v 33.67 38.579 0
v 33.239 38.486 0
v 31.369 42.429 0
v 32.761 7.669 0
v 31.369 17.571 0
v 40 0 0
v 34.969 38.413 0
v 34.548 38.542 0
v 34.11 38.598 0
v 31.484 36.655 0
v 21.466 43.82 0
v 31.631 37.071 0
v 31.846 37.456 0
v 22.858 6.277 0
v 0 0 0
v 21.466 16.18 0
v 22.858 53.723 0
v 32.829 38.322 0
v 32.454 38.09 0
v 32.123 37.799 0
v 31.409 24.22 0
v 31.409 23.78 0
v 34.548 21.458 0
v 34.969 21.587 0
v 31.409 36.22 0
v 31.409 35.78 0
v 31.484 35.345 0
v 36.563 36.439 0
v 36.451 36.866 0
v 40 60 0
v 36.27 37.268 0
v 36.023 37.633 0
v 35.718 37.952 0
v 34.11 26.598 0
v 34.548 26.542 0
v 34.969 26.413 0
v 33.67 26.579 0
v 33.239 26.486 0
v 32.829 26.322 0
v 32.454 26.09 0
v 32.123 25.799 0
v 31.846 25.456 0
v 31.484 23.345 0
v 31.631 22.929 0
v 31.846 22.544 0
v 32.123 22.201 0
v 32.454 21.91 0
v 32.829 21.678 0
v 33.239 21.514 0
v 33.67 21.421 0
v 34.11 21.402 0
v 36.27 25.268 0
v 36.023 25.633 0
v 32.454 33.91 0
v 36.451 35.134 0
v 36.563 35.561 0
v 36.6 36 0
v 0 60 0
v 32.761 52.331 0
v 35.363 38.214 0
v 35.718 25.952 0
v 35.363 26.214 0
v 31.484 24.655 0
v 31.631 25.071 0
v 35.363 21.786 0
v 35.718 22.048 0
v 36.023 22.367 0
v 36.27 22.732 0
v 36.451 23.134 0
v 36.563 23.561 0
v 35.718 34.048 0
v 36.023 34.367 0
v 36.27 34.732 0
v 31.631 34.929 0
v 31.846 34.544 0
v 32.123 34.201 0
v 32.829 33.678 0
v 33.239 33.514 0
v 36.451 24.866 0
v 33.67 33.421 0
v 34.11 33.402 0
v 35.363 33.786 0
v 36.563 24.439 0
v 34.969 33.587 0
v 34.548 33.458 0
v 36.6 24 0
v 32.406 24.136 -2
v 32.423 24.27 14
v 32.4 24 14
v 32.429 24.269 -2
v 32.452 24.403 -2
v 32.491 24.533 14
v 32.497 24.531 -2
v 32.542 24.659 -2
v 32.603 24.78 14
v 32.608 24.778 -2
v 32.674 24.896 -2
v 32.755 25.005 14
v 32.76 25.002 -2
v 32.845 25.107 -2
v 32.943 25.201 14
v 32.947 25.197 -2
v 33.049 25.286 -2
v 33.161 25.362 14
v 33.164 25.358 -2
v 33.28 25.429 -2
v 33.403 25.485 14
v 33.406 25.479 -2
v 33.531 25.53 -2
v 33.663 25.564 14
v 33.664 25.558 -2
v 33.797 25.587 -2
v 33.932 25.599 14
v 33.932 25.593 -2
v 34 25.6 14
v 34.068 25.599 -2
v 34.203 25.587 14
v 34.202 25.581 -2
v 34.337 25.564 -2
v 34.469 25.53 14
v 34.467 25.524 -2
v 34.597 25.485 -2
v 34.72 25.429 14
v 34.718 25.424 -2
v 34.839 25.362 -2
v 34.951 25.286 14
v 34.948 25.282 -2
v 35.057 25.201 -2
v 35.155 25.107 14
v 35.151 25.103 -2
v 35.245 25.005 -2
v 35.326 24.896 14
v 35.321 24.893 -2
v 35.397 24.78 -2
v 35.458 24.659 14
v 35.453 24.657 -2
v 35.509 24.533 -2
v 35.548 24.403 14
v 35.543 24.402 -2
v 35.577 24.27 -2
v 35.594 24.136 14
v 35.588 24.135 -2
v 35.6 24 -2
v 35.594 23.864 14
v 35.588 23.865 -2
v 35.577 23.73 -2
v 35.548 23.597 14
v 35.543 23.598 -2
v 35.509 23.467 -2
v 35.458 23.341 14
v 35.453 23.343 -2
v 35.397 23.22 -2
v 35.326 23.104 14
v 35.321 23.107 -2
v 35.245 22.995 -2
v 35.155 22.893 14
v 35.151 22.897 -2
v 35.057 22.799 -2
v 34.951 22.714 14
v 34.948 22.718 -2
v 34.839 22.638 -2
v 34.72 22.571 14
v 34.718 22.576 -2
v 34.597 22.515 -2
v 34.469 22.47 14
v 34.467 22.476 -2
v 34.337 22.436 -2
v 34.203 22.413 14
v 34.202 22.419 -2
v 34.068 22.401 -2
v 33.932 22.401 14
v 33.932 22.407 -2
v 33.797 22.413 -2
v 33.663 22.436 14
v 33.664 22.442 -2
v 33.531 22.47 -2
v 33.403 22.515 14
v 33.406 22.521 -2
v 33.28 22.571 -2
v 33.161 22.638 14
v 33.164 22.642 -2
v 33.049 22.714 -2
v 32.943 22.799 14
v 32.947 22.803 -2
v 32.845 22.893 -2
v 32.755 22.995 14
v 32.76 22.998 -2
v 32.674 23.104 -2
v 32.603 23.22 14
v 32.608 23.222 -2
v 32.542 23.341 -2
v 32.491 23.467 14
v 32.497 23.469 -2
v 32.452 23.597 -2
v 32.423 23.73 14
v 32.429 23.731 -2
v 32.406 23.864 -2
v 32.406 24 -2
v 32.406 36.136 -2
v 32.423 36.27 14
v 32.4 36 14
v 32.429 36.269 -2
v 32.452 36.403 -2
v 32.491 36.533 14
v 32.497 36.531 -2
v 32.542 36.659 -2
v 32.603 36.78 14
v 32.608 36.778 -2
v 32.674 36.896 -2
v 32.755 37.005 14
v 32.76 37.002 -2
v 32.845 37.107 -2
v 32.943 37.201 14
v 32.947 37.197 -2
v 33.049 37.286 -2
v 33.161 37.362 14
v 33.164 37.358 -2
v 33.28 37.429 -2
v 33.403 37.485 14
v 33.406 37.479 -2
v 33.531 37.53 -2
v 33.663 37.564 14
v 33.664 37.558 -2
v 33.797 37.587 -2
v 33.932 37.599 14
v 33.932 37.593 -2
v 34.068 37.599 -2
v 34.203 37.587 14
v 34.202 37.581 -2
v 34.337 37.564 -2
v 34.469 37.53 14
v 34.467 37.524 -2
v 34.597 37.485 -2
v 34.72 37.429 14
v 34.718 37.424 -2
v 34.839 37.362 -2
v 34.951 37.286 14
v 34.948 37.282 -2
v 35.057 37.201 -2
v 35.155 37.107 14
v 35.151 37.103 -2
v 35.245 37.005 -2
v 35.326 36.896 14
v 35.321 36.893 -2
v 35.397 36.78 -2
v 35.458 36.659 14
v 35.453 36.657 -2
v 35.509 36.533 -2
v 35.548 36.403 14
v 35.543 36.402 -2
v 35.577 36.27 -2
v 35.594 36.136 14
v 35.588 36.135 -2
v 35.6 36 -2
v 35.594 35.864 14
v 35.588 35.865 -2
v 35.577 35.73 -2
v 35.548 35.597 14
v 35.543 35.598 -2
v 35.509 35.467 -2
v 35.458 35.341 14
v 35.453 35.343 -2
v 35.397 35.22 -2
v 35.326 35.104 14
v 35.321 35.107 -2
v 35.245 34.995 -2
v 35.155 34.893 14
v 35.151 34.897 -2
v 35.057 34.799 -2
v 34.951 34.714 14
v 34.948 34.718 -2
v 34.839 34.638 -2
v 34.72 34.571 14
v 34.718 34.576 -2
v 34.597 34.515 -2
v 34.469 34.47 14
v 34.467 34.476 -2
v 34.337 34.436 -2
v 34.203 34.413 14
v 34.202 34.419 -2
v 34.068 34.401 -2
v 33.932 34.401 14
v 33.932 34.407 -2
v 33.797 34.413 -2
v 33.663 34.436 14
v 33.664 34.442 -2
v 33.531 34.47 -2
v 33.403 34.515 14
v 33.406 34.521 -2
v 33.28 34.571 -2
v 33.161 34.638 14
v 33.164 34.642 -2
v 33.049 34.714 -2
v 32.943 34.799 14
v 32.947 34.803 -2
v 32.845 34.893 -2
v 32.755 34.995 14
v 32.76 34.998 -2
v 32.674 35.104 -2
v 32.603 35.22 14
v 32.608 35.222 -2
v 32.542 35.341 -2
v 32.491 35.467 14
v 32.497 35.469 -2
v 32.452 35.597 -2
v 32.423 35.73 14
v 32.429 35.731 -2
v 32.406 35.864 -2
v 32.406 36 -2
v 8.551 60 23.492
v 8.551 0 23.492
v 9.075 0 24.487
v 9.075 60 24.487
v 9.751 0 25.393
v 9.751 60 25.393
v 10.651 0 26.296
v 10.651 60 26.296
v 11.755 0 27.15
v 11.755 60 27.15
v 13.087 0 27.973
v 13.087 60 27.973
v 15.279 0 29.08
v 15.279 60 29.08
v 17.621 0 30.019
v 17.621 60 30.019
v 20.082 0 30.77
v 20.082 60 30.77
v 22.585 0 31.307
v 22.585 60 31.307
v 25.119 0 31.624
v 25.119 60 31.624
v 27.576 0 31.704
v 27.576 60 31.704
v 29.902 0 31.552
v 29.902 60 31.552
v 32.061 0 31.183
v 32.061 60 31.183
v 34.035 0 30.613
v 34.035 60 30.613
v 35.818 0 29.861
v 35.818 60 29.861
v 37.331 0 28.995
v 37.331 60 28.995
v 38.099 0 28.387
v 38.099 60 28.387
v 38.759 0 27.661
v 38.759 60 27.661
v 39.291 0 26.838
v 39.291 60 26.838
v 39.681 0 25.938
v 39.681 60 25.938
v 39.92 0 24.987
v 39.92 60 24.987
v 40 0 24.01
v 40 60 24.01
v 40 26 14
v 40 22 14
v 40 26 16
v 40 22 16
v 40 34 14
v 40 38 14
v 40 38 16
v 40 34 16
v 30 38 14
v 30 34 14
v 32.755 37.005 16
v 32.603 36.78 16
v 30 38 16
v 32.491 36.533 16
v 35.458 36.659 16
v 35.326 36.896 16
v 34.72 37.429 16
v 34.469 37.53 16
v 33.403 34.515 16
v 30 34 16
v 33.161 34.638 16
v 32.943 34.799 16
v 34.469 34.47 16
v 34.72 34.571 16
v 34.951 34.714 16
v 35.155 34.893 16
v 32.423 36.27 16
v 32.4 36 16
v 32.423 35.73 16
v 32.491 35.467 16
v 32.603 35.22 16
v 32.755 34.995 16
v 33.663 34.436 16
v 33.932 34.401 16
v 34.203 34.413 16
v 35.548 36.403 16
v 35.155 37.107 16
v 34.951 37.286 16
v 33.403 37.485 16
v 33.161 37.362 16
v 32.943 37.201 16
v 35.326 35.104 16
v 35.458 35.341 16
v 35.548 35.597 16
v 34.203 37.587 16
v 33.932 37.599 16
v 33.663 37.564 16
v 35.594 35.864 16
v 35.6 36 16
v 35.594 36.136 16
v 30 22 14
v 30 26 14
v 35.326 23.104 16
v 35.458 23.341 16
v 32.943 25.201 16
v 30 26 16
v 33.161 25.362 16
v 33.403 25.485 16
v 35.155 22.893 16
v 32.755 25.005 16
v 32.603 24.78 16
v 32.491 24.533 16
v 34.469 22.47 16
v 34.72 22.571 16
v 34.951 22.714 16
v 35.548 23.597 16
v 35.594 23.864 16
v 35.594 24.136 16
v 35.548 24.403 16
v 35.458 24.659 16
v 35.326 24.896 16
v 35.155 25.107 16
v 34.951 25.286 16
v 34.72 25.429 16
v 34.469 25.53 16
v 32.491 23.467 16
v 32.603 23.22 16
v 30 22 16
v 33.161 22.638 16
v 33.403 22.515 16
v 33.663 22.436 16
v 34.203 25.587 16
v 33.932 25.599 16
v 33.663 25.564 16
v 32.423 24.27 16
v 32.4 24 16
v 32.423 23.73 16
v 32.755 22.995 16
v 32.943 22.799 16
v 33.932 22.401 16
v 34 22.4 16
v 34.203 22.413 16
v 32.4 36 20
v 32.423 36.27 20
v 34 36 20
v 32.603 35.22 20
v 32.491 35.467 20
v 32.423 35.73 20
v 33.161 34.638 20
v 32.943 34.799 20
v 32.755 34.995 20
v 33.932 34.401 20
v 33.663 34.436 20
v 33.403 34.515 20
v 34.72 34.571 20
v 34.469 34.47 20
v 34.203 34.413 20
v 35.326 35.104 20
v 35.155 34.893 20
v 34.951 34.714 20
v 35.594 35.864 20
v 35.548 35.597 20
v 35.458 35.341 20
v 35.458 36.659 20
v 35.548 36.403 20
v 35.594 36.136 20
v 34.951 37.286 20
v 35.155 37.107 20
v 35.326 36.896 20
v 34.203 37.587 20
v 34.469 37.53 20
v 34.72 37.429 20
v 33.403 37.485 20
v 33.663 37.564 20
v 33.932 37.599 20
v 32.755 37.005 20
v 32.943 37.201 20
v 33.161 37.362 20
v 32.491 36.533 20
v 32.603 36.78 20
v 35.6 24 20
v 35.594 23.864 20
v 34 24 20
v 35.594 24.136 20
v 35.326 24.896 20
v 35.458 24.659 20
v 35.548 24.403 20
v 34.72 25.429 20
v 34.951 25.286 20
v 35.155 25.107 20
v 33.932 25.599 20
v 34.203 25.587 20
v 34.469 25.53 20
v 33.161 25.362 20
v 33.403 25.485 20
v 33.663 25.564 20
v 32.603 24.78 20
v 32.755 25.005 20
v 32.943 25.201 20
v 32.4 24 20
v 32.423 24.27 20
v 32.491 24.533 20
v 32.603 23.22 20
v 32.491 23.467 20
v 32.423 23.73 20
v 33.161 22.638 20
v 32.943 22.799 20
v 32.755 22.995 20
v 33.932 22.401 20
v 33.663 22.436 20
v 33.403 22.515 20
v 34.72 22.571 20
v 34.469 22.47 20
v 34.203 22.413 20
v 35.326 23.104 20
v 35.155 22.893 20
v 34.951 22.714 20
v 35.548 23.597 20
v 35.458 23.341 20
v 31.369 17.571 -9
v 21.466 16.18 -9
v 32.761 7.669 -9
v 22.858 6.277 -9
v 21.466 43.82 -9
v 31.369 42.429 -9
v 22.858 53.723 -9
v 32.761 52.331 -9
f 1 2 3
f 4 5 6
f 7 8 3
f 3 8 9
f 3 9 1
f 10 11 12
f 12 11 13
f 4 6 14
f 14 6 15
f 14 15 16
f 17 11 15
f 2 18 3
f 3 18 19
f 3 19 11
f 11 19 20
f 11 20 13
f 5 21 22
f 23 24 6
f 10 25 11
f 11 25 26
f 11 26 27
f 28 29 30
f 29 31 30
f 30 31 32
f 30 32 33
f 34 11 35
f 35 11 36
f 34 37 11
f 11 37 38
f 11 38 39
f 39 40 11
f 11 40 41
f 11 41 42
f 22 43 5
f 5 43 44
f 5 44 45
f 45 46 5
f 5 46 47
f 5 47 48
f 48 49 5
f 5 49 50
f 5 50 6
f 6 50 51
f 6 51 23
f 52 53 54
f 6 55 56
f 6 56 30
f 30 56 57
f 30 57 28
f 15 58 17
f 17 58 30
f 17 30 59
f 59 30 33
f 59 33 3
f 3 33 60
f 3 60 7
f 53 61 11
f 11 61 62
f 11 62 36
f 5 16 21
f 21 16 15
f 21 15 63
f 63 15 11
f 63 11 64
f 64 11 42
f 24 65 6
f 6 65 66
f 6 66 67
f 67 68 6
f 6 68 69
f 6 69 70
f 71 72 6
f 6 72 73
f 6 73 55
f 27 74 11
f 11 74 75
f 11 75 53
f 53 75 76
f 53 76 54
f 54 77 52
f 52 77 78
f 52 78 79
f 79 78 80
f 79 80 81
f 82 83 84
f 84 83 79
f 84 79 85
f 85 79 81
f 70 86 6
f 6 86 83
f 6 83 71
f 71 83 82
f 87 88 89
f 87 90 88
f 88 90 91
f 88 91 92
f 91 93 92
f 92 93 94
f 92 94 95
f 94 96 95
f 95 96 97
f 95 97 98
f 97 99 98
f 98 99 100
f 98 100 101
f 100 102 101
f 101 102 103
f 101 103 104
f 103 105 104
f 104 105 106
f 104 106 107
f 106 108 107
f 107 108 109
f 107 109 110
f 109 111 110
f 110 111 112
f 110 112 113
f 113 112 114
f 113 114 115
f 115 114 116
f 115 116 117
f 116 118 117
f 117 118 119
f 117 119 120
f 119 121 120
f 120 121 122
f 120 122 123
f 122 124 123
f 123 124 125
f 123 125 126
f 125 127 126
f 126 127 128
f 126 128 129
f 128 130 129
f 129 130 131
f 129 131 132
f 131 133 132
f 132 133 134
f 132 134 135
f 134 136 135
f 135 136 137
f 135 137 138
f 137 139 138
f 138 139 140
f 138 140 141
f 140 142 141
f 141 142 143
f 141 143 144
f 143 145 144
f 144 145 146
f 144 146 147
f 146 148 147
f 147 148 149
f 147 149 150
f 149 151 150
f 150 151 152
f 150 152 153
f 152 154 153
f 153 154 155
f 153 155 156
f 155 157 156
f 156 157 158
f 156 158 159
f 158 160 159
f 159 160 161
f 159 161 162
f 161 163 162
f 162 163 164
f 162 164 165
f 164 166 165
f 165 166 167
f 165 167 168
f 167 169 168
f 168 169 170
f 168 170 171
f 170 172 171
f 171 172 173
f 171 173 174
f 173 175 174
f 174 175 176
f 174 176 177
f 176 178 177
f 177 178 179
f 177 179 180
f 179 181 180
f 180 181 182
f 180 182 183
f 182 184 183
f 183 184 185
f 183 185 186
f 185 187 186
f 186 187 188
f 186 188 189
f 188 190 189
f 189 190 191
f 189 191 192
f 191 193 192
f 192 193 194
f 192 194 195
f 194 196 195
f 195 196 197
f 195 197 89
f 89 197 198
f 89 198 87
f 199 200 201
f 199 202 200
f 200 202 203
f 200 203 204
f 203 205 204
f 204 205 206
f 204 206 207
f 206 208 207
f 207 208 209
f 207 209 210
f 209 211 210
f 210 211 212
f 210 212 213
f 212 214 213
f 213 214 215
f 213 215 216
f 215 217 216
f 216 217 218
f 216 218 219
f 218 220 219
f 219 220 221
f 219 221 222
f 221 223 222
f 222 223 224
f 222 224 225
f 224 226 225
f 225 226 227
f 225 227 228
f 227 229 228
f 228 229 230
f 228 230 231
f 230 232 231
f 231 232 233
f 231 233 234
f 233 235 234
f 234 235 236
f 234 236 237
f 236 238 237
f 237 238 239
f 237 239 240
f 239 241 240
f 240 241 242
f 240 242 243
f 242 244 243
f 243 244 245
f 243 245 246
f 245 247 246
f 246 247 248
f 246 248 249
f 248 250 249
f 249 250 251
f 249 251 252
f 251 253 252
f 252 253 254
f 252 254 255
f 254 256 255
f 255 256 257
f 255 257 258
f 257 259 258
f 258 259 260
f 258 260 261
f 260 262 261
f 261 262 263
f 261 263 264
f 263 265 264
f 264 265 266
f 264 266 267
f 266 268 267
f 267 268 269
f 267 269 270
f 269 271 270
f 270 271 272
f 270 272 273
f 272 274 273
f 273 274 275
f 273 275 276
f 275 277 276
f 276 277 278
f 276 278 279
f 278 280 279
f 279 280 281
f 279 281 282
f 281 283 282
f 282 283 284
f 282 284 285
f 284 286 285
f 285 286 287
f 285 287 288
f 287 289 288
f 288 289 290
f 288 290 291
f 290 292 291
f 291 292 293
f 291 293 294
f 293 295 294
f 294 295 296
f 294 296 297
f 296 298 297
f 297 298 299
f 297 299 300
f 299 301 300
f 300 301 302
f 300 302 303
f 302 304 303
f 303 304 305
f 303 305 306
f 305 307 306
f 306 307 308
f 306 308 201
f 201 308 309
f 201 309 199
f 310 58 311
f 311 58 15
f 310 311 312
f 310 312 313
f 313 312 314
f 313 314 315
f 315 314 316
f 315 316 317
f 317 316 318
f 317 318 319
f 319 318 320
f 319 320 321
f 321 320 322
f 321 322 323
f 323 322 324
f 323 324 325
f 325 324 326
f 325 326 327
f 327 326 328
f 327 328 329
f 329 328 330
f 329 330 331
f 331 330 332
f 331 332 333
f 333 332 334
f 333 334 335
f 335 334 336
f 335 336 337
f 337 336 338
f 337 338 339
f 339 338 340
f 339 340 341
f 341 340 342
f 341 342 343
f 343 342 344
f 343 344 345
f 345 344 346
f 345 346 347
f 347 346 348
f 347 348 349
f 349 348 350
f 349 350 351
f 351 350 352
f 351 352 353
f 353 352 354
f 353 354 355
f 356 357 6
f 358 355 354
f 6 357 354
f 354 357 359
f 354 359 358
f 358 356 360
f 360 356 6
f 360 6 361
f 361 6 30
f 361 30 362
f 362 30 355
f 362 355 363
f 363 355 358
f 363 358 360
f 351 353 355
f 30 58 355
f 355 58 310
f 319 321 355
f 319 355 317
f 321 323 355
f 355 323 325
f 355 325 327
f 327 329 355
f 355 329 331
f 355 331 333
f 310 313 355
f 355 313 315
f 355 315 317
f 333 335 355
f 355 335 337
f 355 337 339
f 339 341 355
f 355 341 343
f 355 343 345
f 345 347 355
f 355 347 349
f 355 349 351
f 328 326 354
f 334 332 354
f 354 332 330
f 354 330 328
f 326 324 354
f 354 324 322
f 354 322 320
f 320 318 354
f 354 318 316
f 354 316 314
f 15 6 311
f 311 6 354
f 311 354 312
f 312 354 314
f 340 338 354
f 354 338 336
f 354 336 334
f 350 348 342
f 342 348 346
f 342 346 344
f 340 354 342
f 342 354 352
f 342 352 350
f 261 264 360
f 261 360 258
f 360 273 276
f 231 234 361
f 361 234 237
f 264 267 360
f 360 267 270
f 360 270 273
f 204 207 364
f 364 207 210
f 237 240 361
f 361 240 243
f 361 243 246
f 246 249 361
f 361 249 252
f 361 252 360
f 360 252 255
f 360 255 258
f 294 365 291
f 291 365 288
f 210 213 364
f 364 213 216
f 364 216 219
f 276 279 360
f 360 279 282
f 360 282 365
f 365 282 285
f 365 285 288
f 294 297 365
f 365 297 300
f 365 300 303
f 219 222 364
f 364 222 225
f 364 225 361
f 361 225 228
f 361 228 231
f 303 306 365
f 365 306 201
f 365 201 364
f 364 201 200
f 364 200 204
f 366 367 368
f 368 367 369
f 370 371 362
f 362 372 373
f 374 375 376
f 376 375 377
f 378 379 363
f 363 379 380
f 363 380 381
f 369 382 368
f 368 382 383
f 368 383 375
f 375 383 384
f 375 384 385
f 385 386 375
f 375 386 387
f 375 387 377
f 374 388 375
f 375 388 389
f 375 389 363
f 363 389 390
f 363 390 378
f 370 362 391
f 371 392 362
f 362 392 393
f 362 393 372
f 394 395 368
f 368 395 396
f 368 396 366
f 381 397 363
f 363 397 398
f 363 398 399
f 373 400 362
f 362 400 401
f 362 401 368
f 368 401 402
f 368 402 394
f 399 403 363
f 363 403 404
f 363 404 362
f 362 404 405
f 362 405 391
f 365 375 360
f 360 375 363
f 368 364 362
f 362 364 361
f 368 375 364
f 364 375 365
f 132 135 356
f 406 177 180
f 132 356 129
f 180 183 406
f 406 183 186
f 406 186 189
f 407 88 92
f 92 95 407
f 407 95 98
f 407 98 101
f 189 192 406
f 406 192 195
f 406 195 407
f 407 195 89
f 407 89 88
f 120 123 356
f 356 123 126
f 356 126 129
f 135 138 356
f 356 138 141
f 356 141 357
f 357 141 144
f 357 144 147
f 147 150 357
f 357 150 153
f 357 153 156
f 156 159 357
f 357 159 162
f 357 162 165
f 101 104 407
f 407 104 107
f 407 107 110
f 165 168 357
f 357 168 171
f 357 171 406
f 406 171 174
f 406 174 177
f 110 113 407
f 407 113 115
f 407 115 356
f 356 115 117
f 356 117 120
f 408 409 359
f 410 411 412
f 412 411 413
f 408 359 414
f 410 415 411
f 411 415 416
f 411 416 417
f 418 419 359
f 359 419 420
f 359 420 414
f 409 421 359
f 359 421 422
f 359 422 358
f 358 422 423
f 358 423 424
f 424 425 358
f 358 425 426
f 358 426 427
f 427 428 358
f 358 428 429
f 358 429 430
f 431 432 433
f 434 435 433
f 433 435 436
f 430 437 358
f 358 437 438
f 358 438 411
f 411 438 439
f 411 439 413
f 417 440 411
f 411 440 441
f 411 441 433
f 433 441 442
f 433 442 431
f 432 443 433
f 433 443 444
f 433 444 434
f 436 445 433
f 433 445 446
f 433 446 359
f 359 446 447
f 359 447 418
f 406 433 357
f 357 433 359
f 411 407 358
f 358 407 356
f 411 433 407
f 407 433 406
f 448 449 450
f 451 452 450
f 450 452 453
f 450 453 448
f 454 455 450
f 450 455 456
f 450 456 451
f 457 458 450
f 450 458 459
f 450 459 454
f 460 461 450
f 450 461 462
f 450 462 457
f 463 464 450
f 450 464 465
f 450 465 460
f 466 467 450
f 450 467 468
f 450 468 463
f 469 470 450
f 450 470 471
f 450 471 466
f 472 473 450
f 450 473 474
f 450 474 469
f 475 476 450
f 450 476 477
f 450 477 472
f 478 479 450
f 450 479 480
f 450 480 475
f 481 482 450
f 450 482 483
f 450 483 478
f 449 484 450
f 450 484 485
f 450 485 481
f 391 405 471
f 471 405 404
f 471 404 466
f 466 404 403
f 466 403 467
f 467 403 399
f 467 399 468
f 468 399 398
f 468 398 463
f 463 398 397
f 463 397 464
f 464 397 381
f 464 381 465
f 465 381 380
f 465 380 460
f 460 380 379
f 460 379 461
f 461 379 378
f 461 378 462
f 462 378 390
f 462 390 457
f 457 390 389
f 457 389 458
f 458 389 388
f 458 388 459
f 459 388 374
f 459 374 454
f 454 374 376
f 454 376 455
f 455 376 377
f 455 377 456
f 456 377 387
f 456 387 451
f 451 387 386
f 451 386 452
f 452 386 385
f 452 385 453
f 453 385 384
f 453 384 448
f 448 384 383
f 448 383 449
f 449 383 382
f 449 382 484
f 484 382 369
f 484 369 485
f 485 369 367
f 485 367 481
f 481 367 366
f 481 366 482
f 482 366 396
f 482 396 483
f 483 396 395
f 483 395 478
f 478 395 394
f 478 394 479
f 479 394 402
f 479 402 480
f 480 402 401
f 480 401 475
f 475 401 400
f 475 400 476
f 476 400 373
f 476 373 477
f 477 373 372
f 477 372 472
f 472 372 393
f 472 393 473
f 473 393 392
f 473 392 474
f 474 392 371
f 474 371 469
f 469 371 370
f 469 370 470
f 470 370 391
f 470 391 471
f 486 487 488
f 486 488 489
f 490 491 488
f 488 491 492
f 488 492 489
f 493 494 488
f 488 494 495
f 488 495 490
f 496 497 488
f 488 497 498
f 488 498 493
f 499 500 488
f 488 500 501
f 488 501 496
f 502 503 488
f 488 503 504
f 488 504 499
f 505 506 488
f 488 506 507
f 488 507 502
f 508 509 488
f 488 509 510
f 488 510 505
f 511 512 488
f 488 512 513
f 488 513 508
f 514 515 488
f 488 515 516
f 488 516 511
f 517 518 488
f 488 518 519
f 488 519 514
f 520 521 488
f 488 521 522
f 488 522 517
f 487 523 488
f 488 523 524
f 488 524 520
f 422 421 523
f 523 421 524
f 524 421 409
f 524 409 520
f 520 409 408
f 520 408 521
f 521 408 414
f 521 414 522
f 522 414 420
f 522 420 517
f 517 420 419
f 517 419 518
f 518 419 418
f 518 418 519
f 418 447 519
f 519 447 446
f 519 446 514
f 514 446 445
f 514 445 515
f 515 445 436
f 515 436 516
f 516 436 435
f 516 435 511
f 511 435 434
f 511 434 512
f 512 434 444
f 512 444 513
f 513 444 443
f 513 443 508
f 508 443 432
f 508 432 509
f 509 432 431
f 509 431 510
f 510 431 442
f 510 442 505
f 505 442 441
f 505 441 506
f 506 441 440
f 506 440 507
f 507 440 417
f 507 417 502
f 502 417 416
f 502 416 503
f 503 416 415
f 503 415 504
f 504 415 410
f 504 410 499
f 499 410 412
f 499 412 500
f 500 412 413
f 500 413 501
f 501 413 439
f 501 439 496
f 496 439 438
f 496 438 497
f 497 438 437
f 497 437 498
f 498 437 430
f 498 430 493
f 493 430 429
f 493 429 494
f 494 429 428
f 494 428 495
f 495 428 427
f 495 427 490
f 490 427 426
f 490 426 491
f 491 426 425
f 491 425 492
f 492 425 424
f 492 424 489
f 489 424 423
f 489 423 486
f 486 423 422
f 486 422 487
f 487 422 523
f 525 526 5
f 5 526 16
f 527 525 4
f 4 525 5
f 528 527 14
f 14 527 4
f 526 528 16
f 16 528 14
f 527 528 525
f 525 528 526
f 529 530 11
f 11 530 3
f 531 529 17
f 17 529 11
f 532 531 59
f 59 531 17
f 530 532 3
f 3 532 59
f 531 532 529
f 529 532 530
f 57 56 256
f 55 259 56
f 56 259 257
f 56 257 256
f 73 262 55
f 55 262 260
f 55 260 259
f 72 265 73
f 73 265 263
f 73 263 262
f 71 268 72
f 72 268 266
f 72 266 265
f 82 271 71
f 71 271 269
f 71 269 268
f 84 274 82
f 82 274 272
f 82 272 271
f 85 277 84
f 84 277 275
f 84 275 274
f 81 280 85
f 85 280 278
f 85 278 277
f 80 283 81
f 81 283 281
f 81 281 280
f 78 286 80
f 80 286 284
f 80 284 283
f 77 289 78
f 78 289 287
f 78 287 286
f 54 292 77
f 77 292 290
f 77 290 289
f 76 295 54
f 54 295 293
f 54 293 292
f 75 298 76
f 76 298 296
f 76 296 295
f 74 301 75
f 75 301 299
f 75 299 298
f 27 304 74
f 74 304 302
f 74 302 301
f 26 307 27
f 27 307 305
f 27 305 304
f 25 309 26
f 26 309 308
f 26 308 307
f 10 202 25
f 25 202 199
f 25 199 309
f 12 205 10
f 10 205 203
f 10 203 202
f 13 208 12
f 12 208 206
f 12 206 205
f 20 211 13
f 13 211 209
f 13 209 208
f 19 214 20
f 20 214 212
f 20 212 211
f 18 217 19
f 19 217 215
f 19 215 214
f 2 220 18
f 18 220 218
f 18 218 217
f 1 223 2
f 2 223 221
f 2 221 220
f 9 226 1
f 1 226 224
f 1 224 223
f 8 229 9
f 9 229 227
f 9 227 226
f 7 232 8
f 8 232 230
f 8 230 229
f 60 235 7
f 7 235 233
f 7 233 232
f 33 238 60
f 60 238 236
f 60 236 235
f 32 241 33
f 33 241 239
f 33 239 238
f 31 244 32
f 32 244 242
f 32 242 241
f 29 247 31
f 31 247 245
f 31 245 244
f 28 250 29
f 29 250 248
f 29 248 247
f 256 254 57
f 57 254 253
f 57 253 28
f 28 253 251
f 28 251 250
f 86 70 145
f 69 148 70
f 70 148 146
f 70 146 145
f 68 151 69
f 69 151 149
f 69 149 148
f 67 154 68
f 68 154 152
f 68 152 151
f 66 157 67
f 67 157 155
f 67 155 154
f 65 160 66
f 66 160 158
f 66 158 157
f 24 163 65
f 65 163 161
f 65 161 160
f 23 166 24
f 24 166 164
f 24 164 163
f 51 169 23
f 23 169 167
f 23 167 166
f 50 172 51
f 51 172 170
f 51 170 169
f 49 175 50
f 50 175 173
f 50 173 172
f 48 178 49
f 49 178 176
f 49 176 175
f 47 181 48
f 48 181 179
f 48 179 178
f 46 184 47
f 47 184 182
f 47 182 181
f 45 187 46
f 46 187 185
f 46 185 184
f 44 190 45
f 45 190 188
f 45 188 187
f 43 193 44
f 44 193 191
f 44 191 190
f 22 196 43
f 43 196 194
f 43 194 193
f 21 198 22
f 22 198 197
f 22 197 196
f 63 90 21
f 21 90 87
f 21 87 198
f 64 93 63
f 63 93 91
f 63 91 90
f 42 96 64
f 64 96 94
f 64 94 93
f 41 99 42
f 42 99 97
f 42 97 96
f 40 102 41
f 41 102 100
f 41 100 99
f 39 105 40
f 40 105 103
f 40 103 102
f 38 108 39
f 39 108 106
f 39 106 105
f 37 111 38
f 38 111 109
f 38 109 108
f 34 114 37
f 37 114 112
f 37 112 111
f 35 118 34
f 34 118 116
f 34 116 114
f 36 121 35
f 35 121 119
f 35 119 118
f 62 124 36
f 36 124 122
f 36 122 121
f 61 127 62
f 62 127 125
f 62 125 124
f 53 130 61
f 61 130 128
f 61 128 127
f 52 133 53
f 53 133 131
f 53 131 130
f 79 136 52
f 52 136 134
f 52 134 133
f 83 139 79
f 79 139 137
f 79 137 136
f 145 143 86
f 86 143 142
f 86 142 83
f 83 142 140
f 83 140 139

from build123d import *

# Parameters (mm, degrees)
BOSS_EXTRUDE1_DEPTH = 60
SKETCH2_R           = 1.6
CUT_EXTRUDE1_DEPTH  = 20
SKETCH4_W           = 2
SKETCH4_H           = 4
CUT_EXTRUDE2_DEPTH  = 10
BOSS_EXTRUDE2_DEPTH = 9


with BuildPart() as part:
    # Sketch1 → Boss-Extrude1 (new body)
    with BuildSketch(Plane(origin=(0, 0, 0), x_dir=(1, 0, 0), z_dir=(0, 1, 0))):
        with BuildLine():
            Line((40, 0), (0, 0))
            Line((0, 0), (8.550503583, -23.49231552))
            add(Edge.make_bspline(
                [(8.550503583, -23.49231552), (9.187650747, -24.984982914), (10.869033495, -26.695868857), (13.579943454, -28.275526589), (21.375498678, -32.059284682), (31.165356306, -32.945912064), (37.204636828, -29.076990777)],
                knots=[0, 0, 0, 0, 0.15219933, 0.226855665, 0.301953476, 0.995167611, 0.995167611, 0.995167611, 0.995167611], degree=3))
            add(Edge.make_bspline(
                [(37.204636828, -29.076990777), (37.246736594, -29.050020564), (37.288700602, -29.022823469), (37.330527165, -28.995398615)],
                knots=[0.995167611, 0.995167611, 0.995167611, 0.995167611, 1, 1, 1, 1], degree=3))
            ThreePointArc((37.330527165, -28.995398615), (39.290627696, -26.837555683), (40, -24.01))
            Line((40, -24.01), (40, 0))
        make_face()
    extrude(amount=BOSS_EXTRUDE1_DEPTH)

    # Sketch2 → Cut-Extrude1 (cut)
    with BuildSketch(Plane(origin=(0, 0, 0), x_dir=(-1, 0, 0), z_dir=(0, 0, -1))):
        with Locations((-34, 36)):
            Circle(SKETCH2_R)
        with Locations((-34, 24)):
            Circle(SKETCH2_R)
    extrude(amount=-CUT_EXTRUDE1_DEPTH, mode=Mode.SUBTRACT)

    # Sketch4 → Cut-Extrude2 (cut)
    with BuildSketch(Plane(origin=(40, 0, 0), x_dir=(0, 0, -1), z_dir=(1, 0, 0))):
        with Locations((-15, 24)):
            Rectangle(SKETCH4_W, SKETCH4_H)
        with Locations((-15, 36)):
            Rectangle(SKETCH4_W, SKETCH4_H)
    extrude(amount=-CUT_EXTRUDE2_DEPTH, mode=Mode.SUBTRACT)

    # Sketch5 → Boss-Extrude2 (add)
    with BuildSketch(Plane(origin=(0, 0, 0), x_dir=(-1, 0, 0), z_dir=(0, 0, -1))):
        Polygon((-31.369100365, 42.428714266), (-32.760831375, 52.331394953), (-22.858150687, 53.723125963), (-21.466419678, 43.820445275), align=None)
        Polygon((-31.369100365, 17.571285734), (-32.760831375, 7.668605047), (-22.858150687, 6.276874037), (-21.466419678, 16.179554725), align=None)
    extrude(amount=BOSS_EXTRUDE2_DEPTH)

    # Sketch6 → Revolve1 (revolve)
    with BuildSketch(Plane(origin=(34, 0, 0), x_dir=(0, 0, -1), z_dir=(1, 0, 0))):
        Polygon((0, 37.6), (2, 37.6), (0, 38.6), align=None)
    revolve(axis=Axis((34, 36, 0), (0, 0, -1)))

    # Sketch7 → Revolve2 (revolve)
    with BuildSketch(Plane(origin=(34, 0, 0), x_dir=(0, 0, -1), z_dir=(1, 0, 0))):
        Polygon((0, 25.6), (2, 25.6), (0, 26.6), align=None)
    revolve(axis=Axis((34, 24, 0), (0, 0, -1)))


solid = part.part
